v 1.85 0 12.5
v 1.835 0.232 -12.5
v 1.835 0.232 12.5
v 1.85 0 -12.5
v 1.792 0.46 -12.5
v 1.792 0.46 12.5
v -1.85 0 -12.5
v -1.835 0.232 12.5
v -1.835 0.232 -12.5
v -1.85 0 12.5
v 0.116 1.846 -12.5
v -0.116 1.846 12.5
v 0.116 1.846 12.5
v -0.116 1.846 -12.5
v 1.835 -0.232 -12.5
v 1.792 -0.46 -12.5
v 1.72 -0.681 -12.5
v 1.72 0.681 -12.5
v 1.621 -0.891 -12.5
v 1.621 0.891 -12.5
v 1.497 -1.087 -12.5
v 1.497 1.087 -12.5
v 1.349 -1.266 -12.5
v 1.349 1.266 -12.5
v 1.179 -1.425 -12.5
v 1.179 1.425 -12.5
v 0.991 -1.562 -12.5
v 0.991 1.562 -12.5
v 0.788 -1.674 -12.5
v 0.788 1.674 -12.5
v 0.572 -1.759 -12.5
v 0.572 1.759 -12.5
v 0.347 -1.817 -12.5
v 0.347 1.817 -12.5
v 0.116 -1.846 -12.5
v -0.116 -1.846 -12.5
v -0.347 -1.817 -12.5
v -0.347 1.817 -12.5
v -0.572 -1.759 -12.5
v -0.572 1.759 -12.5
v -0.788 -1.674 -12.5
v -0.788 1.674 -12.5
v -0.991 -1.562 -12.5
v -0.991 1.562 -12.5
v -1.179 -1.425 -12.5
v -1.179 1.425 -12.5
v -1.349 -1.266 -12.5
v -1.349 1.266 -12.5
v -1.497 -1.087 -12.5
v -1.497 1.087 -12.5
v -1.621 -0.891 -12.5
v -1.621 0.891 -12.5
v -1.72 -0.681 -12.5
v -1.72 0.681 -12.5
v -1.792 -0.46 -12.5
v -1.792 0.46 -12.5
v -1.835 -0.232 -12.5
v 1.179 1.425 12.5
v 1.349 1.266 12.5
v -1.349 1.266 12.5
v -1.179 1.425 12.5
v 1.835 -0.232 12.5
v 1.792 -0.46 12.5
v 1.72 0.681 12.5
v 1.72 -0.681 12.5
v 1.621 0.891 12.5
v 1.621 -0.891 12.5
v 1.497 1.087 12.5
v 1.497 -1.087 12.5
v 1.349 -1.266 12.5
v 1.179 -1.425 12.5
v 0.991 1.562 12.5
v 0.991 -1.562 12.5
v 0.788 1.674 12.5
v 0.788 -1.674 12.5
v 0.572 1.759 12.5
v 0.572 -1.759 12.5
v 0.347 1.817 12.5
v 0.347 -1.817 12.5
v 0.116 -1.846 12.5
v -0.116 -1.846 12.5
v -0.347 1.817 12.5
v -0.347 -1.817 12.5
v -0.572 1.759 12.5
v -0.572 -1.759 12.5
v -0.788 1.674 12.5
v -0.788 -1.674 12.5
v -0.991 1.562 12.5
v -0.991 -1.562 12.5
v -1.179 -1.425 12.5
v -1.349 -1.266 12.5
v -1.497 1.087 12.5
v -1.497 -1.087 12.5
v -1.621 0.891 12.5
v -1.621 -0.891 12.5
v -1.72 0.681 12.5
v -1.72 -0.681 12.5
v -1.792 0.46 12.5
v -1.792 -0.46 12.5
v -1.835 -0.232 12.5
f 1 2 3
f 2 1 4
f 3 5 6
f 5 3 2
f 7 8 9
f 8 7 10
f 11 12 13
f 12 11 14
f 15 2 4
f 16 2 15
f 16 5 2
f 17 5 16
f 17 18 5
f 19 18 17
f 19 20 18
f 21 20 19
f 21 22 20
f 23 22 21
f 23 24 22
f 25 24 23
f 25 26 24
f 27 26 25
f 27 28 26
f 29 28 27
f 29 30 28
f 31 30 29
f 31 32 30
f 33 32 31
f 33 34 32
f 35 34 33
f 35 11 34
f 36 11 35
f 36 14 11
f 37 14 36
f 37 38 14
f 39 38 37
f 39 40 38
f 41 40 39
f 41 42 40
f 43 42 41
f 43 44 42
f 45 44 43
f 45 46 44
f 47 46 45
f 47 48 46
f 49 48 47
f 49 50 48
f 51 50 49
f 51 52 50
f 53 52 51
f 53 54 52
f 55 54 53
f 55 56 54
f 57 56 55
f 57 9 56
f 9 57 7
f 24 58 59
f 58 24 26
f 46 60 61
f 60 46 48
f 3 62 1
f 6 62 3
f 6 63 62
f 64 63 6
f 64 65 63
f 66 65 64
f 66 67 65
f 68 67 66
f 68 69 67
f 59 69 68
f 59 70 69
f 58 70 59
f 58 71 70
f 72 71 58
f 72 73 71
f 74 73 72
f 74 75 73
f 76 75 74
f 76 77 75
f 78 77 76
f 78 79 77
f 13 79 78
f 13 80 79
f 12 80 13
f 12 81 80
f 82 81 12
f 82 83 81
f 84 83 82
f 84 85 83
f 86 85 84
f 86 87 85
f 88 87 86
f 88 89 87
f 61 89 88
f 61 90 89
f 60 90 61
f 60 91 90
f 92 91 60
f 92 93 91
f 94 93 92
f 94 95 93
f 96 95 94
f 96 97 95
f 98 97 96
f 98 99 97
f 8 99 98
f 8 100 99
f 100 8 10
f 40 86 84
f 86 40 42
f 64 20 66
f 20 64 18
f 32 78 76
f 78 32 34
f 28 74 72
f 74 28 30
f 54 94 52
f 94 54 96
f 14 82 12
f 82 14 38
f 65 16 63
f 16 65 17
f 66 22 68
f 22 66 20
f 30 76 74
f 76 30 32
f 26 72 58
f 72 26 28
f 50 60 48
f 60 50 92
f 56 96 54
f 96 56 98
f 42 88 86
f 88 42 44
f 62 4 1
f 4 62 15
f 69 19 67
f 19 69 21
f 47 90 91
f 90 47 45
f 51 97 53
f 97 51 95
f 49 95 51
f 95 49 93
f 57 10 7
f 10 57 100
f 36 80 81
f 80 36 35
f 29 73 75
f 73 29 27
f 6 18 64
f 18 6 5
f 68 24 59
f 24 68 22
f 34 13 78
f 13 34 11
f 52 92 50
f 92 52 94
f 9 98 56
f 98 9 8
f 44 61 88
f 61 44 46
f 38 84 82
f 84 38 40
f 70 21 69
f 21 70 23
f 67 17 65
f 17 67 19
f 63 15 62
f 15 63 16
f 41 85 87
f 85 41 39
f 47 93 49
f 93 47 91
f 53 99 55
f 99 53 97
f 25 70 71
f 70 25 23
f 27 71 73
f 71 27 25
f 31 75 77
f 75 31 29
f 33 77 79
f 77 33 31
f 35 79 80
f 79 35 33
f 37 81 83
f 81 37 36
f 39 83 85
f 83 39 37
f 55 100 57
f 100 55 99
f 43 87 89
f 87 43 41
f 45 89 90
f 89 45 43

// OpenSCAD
$fn = 50;


difference() {
	union() {
		translate(v = [0, 0, -12.5000000000]) {
			cylinder(h = 25, r = 1.8500000000);
		}
	}
	union() {
		translate(v = [0, 0, -100.0000000000]) {
			cylinder(h = 200, r = 0);
		}
	}
}
